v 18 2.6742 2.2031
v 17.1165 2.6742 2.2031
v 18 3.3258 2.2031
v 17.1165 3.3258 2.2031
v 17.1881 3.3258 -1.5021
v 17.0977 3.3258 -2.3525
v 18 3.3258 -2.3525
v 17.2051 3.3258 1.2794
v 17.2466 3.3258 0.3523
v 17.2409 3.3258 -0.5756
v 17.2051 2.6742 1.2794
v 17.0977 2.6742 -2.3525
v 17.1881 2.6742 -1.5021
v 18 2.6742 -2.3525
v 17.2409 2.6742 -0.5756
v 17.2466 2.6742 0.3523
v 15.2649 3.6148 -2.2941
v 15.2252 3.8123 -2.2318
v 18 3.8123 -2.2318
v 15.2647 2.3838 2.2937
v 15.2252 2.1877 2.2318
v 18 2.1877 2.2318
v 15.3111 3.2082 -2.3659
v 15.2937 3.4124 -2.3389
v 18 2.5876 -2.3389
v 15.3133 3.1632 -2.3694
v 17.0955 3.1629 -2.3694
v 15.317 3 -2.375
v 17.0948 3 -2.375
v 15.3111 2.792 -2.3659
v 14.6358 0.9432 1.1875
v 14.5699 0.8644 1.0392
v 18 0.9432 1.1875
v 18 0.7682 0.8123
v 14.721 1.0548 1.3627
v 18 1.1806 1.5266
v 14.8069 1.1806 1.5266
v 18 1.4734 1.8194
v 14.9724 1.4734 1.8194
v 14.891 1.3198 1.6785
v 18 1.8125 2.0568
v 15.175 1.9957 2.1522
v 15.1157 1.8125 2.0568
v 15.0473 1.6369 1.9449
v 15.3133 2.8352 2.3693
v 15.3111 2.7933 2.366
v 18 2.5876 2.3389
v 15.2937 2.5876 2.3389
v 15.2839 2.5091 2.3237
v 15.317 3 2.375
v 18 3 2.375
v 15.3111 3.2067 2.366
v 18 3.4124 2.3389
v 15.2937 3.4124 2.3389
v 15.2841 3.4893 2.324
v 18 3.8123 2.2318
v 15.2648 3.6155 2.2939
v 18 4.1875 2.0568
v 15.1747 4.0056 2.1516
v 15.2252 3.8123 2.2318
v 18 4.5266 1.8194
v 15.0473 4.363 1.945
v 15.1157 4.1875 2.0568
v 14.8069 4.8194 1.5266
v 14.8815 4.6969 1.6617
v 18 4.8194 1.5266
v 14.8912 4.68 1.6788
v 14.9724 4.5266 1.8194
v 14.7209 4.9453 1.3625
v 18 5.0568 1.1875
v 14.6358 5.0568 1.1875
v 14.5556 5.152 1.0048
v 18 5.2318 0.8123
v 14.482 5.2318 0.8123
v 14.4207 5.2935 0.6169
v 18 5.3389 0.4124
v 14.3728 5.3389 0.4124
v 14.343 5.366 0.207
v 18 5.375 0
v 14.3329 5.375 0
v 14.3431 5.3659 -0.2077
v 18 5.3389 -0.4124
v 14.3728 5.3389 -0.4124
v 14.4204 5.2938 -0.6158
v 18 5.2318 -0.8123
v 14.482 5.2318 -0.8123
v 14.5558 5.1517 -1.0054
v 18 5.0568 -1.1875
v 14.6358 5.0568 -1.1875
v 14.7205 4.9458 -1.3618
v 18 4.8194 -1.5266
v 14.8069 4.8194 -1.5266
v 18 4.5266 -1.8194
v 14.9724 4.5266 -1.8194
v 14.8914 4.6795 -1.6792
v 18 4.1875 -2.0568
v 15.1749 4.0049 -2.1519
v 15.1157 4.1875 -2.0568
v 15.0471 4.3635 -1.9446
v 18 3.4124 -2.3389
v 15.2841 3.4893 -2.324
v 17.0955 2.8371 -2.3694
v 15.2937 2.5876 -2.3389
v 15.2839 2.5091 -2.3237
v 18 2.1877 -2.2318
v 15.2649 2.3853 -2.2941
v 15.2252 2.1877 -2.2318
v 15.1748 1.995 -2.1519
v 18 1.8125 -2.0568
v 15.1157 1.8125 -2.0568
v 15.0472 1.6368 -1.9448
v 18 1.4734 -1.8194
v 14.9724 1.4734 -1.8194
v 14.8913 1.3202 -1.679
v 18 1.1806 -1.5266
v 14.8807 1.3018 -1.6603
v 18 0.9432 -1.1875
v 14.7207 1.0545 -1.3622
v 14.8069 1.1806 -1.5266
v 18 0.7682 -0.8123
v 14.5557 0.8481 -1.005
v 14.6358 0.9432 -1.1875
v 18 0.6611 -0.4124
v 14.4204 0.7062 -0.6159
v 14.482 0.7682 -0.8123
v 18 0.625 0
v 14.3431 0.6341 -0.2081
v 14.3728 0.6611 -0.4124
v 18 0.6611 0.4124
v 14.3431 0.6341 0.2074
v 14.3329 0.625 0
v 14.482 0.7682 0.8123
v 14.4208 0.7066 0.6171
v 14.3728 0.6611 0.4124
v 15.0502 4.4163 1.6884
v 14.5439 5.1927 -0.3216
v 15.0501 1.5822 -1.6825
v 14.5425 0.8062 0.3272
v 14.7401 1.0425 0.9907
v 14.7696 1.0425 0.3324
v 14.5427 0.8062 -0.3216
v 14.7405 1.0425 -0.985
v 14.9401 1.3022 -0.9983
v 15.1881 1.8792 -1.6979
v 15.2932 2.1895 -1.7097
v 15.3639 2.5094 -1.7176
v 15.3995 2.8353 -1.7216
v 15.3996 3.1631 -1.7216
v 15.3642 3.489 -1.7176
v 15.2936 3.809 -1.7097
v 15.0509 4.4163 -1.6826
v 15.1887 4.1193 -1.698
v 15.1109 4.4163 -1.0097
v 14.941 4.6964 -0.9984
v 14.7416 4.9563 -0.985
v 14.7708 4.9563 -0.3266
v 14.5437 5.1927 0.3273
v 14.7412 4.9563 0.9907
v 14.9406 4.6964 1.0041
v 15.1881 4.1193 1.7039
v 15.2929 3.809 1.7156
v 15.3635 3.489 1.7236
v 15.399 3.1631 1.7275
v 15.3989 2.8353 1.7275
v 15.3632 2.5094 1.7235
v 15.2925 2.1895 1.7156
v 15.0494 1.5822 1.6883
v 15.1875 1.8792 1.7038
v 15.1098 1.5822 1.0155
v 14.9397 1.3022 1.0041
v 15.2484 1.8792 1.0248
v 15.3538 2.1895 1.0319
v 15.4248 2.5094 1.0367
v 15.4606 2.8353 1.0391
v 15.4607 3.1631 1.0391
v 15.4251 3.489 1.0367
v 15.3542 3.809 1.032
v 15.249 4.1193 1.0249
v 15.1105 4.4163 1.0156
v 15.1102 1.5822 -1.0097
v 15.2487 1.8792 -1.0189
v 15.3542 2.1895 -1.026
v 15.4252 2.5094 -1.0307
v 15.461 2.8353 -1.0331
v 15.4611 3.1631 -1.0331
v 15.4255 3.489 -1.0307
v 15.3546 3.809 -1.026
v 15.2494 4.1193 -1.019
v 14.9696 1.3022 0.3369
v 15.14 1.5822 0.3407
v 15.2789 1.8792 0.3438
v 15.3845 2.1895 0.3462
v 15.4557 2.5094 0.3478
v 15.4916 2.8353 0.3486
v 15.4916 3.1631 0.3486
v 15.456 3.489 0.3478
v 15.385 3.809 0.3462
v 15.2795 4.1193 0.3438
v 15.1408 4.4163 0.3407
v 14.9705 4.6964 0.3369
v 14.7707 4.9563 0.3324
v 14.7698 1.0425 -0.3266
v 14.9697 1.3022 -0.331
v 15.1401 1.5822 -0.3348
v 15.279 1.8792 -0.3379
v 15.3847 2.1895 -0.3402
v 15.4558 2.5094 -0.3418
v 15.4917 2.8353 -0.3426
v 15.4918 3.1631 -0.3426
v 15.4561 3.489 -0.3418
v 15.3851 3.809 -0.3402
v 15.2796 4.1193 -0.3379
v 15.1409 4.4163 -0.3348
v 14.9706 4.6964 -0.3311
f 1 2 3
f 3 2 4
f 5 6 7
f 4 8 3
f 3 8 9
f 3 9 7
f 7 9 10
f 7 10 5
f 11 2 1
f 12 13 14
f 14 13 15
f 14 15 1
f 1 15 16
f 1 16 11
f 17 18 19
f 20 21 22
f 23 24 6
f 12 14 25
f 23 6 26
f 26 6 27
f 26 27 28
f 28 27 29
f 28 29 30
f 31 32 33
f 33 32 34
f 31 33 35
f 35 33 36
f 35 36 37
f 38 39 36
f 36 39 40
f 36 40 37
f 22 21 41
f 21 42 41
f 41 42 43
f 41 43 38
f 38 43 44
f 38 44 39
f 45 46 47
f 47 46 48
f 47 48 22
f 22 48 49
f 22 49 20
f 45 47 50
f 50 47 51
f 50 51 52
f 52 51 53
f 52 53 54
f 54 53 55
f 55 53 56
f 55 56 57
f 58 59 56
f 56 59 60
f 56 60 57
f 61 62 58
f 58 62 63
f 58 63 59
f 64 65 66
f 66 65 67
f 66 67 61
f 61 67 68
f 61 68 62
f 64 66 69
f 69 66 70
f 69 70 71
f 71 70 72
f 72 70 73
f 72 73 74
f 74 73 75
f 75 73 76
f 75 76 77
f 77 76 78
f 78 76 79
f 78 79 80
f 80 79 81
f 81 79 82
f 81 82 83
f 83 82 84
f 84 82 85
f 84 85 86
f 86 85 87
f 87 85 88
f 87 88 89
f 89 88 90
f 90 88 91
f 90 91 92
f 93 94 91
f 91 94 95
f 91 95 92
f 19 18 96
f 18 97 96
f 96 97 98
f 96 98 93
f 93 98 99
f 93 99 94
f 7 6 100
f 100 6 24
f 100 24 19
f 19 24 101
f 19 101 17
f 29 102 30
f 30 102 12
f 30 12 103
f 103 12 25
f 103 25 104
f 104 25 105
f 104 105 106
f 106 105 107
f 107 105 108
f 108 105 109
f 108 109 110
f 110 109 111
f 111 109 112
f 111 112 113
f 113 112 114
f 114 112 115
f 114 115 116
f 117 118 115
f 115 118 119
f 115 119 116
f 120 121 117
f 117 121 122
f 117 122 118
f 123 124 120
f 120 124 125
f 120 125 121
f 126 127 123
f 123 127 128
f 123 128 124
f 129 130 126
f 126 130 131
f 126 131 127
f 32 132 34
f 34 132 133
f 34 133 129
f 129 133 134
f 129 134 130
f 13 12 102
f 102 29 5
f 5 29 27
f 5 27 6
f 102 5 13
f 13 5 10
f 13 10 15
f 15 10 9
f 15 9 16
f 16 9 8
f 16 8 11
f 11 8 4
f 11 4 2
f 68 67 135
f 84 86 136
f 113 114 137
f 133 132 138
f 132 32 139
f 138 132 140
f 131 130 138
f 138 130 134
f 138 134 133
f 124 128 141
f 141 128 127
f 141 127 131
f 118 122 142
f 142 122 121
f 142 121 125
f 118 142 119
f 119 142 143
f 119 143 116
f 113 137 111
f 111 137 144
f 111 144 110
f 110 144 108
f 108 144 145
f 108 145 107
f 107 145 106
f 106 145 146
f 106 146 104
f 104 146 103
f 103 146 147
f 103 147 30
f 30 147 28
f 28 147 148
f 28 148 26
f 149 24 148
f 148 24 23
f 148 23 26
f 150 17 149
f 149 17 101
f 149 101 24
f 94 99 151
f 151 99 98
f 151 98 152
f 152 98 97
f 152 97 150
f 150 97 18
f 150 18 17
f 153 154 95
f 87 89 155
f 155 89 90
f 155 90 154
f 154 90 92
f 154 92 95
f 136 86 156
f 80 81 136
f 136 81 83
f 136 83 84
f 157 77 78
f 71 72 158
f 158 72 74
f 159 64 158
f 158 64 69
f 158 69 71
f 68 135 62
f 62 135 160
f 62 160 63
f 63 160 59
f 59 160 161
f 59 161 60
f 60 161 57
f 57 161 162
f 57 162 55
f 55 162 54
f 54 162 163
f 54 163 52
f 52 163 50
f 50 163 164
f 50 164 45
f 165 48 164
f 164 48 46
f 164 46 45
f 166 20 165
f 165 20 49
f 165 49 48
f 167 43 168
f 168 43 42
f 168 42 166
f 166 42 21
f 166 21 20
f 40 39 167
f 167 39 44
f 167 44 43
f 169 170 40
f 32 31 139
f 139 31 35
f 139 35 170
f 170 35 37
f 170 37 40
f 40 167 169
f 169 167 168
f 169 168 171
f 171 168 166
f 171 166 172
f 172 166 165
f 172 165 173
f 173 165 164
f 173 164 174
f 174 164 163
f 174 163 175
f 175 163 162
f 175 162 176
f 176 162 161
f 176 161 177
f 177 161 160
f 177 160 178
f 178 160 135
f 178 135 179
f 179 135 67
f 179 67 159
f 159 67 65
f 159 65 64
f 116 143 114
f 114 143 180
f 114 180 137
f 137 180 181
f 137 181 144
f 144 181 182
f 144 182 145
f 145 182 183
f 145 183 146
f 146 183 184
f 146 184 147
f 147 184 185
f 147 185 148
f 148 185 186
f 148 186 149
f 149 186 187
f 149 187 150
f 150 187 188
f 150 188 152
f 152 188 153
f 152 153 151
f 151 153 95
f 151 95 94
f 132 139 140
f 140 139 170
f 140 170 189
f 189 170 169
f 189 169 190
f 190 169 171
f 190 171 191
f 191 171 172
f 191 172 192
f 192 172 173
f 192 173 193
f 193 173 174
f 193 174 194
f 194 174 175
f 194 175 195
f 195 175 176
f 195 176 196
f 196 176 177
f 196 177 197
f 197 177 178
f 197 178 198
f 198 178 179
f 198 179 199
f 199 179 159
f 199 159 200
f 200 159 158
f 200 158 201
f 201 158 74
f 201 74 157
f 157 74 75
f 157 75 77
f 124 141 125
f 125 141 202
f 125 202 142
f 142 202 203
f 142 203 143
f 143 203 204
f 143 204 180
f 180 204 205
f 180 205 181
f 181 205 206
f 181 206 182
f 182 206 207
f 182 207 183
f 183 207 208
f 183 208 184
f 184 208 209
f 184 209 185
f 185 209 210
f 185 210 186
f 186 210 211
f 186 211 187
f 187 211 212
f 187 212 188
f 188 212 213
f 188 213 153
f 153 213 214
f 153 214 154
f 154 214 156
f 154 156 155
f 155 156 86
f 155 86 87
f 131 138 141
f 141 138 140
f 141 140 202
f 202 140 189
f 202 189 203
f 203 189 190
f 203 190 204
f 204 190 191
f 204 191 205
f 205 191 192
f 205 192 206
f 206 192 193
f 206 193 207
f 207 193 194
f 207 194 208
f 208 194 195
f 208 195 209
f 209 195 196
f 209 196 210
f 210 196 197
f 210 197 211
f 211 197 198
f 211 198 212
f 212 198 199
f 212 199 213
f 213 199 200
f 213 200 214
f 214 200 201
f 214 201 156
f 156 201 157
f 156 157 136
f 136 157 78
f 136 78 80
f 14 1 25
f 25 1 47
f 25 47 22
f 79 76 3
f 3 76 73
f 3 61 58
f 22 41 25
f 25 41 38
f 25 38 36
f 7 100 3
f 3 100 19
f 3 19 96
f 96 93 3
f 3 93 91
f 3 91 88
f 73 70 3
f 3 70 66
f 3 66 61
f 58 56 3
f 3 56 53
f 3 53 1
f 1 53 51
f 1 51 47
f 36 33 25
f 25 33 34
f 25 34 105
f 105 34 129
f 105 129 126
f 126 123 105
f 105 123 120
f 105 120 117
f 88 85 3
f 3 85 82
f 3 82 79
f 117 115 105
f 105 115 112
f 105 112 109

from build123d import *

# Parameters (mm, degrees)
SKETCH1_R                 = 18.25
SKETCH1_R_2               = 13.5
BOSS_EXTRUDE1_DEPTH       = 6
CUT_EXTRUDE2_REACH        = 29.498
CUT_EXTRUDE2_START_RADIUS = 18.25
CUT_EXTRUDE2_END_RADIUS   = 18.25
SKETCH6_W                 = 6
SKETCH6_H                 = 0.651674146
SKETCH3_R                 = 3
CUT_EXTRUDE1_START        = -18.2500001
CUT_EXTRUDE1_OUTLINE_W    = 40
CUT_EXTRUDE1_OUTLINE_H    = 6
CUT_EXTRUDE1_OUTLINE_R    = 2.375
CUT_EXTRUDE1_DEPTH        = 36.5000001
CUT_EXTRUDE1_2_OUTLINE_R  = 2.375
CUT_EXTRUDE1_2_DEPTH      = 4.75
CUT_EXTRUDE4_START        = 18
SKETCH7_W                 = 5.736434108
SKETCH7_H                 = 5.158562368
CUT_EXTRUDE4_DEPTH        = 20


# Read off the part's stored shape, not the designer's step: Cut-Extrude1
with BuildPart() as part:
    # Sketch1 → Boss-Extrude1 (new body)
    with BuildSketch(Plane(origin=(0, 0, 0), x_dir=(1, 0, 0), z_dir=(0, 1, 0))):
        with Locations(Location((0, 0, 0), (0, 0, 270))):
            Circle(SKETCH1_R)
        with Locations(Location((0, 0, 0), (0, 0, 270))):
            Circle(SKETCH1_R_2, mode=Mode.SUBTRACT)
    extrude(amount=BOSS_EXTRUDE1_DEPTH)

    # Cut-Extrude2: from a cylinder face, 29.498 long prism both ways, kept between that surface and its translate by the depth
    cut_extrude2_start = Plane(origin=(0, 3, 0), z_dir=(0, -1, 0)) * Cylinder(CUT_EXTRUDE2_START_RADIUS, 96.496, mode=Mode.PRIVATE)
    cut_extrude2_end = Plane(origin=(-1, 3, 0), z_dir=(0, -1, 0)) * Cylinder(CUT_EXTRUDE2_END_RADIUS, 96.496, mode=Mode.PRIVATE)
    # Sketch6 → Cut-Extrude2 (cut, from a surface)
    with BuildSketch(Plane(origin=(0, 0, 0), x_dir=(0, 0, -1), z_dir=(1, 0, 0)), mode=Mode.PRIVATE) as cut_extrude2_sk1:
        with Locations((0.79691987, 3)):
            Rectangle(SKETCH6_W, SKETCH6_H)
    cut_extrude2_tool1 = extrude(cut_extrude2_sk1.sketch, amount=CUT_EXTRUDE2_REACH, both=True, mode=Mode.PRIVATE)
    add(((cut_extrude2_tool1 & cut_extrude2_start) - cut_extrude2_end).solids().sort_by_distance((17.483597, 3, -0.79692))[0], mode=Mode.SUBTRACT)

    # Sketch3 → Cut-Revolve1 (revolve, cut)
    with BuildSketch(Plane.XY, mode=Mode.PRIVATE) as cut_revolve1_sk:
        with Locations((-12.5, 3)):
            Circle(SKETCH3_R)
    revolve(cut_revolve1_sk.sketch.rotate(Axis((0, 0, 0), (0, 1, 0)), 270), axis=Axis((0, 0, 0), (0, 1, 0)), mode=Mode.SUBTRACT)

    # Cut-Extrude1 outline → Cut-Extrude1 (cut)
    with BuildSketch(Plane(origin=(0, 0, 0), x_dir=(0, 0, -1), z_dir=(1, 0, 0)).offset(CUT_EXTRUDE1_START)):
        with Locations((0, 3)):
            Rectangle(CUT_EXTRUDE1_OUTLINE_W, CUT_EXTRUDE1_OUTLINE_H)
        with Locations((0, 3)):
            Circle(CUT_EXTRUDE1_OUTLINE_R, mode=Mode.SUBTRACT)
    extrude(amount=CUT_EXTRUDE1_DEPTH, mode=Mode.SUBTRACT)

    # Cut-Extrude1 2 outline → Cut-Extrude1 2 (cut)
    with BuildSketch(Plane(origin=(0, 0, 0), x_dir=(0, 0, -1), z_dir=(1, 0, 0)).offset(CUT_EXTRUDE1_START)):
        with Locations((0, 3)):
            Circle(CUT_EXTRUDE1_2_OUTLINE_R)
    extrude(amount=CUT_EXTRUDE1_2_DEPTH, mode=Mode.SUBTRACT)

    # Sketch7 → Cut-Extrude4 (cut)
    with BuildSketch(Plane(origin=(0, 0, 0), x_dir=(0, 0, -1), z_dir=(1, 0, 0)).offset(CUT_EXTRUDE4_START)):
        with Locations((0, 3.03875969)):
            Rectangle(SKETCH7_W, SKETCH7_H)
    extrude(amount=CUT_EXTRUDE4_DEPTH, mode=Mode.SUBTRACT)


solid = part.part
